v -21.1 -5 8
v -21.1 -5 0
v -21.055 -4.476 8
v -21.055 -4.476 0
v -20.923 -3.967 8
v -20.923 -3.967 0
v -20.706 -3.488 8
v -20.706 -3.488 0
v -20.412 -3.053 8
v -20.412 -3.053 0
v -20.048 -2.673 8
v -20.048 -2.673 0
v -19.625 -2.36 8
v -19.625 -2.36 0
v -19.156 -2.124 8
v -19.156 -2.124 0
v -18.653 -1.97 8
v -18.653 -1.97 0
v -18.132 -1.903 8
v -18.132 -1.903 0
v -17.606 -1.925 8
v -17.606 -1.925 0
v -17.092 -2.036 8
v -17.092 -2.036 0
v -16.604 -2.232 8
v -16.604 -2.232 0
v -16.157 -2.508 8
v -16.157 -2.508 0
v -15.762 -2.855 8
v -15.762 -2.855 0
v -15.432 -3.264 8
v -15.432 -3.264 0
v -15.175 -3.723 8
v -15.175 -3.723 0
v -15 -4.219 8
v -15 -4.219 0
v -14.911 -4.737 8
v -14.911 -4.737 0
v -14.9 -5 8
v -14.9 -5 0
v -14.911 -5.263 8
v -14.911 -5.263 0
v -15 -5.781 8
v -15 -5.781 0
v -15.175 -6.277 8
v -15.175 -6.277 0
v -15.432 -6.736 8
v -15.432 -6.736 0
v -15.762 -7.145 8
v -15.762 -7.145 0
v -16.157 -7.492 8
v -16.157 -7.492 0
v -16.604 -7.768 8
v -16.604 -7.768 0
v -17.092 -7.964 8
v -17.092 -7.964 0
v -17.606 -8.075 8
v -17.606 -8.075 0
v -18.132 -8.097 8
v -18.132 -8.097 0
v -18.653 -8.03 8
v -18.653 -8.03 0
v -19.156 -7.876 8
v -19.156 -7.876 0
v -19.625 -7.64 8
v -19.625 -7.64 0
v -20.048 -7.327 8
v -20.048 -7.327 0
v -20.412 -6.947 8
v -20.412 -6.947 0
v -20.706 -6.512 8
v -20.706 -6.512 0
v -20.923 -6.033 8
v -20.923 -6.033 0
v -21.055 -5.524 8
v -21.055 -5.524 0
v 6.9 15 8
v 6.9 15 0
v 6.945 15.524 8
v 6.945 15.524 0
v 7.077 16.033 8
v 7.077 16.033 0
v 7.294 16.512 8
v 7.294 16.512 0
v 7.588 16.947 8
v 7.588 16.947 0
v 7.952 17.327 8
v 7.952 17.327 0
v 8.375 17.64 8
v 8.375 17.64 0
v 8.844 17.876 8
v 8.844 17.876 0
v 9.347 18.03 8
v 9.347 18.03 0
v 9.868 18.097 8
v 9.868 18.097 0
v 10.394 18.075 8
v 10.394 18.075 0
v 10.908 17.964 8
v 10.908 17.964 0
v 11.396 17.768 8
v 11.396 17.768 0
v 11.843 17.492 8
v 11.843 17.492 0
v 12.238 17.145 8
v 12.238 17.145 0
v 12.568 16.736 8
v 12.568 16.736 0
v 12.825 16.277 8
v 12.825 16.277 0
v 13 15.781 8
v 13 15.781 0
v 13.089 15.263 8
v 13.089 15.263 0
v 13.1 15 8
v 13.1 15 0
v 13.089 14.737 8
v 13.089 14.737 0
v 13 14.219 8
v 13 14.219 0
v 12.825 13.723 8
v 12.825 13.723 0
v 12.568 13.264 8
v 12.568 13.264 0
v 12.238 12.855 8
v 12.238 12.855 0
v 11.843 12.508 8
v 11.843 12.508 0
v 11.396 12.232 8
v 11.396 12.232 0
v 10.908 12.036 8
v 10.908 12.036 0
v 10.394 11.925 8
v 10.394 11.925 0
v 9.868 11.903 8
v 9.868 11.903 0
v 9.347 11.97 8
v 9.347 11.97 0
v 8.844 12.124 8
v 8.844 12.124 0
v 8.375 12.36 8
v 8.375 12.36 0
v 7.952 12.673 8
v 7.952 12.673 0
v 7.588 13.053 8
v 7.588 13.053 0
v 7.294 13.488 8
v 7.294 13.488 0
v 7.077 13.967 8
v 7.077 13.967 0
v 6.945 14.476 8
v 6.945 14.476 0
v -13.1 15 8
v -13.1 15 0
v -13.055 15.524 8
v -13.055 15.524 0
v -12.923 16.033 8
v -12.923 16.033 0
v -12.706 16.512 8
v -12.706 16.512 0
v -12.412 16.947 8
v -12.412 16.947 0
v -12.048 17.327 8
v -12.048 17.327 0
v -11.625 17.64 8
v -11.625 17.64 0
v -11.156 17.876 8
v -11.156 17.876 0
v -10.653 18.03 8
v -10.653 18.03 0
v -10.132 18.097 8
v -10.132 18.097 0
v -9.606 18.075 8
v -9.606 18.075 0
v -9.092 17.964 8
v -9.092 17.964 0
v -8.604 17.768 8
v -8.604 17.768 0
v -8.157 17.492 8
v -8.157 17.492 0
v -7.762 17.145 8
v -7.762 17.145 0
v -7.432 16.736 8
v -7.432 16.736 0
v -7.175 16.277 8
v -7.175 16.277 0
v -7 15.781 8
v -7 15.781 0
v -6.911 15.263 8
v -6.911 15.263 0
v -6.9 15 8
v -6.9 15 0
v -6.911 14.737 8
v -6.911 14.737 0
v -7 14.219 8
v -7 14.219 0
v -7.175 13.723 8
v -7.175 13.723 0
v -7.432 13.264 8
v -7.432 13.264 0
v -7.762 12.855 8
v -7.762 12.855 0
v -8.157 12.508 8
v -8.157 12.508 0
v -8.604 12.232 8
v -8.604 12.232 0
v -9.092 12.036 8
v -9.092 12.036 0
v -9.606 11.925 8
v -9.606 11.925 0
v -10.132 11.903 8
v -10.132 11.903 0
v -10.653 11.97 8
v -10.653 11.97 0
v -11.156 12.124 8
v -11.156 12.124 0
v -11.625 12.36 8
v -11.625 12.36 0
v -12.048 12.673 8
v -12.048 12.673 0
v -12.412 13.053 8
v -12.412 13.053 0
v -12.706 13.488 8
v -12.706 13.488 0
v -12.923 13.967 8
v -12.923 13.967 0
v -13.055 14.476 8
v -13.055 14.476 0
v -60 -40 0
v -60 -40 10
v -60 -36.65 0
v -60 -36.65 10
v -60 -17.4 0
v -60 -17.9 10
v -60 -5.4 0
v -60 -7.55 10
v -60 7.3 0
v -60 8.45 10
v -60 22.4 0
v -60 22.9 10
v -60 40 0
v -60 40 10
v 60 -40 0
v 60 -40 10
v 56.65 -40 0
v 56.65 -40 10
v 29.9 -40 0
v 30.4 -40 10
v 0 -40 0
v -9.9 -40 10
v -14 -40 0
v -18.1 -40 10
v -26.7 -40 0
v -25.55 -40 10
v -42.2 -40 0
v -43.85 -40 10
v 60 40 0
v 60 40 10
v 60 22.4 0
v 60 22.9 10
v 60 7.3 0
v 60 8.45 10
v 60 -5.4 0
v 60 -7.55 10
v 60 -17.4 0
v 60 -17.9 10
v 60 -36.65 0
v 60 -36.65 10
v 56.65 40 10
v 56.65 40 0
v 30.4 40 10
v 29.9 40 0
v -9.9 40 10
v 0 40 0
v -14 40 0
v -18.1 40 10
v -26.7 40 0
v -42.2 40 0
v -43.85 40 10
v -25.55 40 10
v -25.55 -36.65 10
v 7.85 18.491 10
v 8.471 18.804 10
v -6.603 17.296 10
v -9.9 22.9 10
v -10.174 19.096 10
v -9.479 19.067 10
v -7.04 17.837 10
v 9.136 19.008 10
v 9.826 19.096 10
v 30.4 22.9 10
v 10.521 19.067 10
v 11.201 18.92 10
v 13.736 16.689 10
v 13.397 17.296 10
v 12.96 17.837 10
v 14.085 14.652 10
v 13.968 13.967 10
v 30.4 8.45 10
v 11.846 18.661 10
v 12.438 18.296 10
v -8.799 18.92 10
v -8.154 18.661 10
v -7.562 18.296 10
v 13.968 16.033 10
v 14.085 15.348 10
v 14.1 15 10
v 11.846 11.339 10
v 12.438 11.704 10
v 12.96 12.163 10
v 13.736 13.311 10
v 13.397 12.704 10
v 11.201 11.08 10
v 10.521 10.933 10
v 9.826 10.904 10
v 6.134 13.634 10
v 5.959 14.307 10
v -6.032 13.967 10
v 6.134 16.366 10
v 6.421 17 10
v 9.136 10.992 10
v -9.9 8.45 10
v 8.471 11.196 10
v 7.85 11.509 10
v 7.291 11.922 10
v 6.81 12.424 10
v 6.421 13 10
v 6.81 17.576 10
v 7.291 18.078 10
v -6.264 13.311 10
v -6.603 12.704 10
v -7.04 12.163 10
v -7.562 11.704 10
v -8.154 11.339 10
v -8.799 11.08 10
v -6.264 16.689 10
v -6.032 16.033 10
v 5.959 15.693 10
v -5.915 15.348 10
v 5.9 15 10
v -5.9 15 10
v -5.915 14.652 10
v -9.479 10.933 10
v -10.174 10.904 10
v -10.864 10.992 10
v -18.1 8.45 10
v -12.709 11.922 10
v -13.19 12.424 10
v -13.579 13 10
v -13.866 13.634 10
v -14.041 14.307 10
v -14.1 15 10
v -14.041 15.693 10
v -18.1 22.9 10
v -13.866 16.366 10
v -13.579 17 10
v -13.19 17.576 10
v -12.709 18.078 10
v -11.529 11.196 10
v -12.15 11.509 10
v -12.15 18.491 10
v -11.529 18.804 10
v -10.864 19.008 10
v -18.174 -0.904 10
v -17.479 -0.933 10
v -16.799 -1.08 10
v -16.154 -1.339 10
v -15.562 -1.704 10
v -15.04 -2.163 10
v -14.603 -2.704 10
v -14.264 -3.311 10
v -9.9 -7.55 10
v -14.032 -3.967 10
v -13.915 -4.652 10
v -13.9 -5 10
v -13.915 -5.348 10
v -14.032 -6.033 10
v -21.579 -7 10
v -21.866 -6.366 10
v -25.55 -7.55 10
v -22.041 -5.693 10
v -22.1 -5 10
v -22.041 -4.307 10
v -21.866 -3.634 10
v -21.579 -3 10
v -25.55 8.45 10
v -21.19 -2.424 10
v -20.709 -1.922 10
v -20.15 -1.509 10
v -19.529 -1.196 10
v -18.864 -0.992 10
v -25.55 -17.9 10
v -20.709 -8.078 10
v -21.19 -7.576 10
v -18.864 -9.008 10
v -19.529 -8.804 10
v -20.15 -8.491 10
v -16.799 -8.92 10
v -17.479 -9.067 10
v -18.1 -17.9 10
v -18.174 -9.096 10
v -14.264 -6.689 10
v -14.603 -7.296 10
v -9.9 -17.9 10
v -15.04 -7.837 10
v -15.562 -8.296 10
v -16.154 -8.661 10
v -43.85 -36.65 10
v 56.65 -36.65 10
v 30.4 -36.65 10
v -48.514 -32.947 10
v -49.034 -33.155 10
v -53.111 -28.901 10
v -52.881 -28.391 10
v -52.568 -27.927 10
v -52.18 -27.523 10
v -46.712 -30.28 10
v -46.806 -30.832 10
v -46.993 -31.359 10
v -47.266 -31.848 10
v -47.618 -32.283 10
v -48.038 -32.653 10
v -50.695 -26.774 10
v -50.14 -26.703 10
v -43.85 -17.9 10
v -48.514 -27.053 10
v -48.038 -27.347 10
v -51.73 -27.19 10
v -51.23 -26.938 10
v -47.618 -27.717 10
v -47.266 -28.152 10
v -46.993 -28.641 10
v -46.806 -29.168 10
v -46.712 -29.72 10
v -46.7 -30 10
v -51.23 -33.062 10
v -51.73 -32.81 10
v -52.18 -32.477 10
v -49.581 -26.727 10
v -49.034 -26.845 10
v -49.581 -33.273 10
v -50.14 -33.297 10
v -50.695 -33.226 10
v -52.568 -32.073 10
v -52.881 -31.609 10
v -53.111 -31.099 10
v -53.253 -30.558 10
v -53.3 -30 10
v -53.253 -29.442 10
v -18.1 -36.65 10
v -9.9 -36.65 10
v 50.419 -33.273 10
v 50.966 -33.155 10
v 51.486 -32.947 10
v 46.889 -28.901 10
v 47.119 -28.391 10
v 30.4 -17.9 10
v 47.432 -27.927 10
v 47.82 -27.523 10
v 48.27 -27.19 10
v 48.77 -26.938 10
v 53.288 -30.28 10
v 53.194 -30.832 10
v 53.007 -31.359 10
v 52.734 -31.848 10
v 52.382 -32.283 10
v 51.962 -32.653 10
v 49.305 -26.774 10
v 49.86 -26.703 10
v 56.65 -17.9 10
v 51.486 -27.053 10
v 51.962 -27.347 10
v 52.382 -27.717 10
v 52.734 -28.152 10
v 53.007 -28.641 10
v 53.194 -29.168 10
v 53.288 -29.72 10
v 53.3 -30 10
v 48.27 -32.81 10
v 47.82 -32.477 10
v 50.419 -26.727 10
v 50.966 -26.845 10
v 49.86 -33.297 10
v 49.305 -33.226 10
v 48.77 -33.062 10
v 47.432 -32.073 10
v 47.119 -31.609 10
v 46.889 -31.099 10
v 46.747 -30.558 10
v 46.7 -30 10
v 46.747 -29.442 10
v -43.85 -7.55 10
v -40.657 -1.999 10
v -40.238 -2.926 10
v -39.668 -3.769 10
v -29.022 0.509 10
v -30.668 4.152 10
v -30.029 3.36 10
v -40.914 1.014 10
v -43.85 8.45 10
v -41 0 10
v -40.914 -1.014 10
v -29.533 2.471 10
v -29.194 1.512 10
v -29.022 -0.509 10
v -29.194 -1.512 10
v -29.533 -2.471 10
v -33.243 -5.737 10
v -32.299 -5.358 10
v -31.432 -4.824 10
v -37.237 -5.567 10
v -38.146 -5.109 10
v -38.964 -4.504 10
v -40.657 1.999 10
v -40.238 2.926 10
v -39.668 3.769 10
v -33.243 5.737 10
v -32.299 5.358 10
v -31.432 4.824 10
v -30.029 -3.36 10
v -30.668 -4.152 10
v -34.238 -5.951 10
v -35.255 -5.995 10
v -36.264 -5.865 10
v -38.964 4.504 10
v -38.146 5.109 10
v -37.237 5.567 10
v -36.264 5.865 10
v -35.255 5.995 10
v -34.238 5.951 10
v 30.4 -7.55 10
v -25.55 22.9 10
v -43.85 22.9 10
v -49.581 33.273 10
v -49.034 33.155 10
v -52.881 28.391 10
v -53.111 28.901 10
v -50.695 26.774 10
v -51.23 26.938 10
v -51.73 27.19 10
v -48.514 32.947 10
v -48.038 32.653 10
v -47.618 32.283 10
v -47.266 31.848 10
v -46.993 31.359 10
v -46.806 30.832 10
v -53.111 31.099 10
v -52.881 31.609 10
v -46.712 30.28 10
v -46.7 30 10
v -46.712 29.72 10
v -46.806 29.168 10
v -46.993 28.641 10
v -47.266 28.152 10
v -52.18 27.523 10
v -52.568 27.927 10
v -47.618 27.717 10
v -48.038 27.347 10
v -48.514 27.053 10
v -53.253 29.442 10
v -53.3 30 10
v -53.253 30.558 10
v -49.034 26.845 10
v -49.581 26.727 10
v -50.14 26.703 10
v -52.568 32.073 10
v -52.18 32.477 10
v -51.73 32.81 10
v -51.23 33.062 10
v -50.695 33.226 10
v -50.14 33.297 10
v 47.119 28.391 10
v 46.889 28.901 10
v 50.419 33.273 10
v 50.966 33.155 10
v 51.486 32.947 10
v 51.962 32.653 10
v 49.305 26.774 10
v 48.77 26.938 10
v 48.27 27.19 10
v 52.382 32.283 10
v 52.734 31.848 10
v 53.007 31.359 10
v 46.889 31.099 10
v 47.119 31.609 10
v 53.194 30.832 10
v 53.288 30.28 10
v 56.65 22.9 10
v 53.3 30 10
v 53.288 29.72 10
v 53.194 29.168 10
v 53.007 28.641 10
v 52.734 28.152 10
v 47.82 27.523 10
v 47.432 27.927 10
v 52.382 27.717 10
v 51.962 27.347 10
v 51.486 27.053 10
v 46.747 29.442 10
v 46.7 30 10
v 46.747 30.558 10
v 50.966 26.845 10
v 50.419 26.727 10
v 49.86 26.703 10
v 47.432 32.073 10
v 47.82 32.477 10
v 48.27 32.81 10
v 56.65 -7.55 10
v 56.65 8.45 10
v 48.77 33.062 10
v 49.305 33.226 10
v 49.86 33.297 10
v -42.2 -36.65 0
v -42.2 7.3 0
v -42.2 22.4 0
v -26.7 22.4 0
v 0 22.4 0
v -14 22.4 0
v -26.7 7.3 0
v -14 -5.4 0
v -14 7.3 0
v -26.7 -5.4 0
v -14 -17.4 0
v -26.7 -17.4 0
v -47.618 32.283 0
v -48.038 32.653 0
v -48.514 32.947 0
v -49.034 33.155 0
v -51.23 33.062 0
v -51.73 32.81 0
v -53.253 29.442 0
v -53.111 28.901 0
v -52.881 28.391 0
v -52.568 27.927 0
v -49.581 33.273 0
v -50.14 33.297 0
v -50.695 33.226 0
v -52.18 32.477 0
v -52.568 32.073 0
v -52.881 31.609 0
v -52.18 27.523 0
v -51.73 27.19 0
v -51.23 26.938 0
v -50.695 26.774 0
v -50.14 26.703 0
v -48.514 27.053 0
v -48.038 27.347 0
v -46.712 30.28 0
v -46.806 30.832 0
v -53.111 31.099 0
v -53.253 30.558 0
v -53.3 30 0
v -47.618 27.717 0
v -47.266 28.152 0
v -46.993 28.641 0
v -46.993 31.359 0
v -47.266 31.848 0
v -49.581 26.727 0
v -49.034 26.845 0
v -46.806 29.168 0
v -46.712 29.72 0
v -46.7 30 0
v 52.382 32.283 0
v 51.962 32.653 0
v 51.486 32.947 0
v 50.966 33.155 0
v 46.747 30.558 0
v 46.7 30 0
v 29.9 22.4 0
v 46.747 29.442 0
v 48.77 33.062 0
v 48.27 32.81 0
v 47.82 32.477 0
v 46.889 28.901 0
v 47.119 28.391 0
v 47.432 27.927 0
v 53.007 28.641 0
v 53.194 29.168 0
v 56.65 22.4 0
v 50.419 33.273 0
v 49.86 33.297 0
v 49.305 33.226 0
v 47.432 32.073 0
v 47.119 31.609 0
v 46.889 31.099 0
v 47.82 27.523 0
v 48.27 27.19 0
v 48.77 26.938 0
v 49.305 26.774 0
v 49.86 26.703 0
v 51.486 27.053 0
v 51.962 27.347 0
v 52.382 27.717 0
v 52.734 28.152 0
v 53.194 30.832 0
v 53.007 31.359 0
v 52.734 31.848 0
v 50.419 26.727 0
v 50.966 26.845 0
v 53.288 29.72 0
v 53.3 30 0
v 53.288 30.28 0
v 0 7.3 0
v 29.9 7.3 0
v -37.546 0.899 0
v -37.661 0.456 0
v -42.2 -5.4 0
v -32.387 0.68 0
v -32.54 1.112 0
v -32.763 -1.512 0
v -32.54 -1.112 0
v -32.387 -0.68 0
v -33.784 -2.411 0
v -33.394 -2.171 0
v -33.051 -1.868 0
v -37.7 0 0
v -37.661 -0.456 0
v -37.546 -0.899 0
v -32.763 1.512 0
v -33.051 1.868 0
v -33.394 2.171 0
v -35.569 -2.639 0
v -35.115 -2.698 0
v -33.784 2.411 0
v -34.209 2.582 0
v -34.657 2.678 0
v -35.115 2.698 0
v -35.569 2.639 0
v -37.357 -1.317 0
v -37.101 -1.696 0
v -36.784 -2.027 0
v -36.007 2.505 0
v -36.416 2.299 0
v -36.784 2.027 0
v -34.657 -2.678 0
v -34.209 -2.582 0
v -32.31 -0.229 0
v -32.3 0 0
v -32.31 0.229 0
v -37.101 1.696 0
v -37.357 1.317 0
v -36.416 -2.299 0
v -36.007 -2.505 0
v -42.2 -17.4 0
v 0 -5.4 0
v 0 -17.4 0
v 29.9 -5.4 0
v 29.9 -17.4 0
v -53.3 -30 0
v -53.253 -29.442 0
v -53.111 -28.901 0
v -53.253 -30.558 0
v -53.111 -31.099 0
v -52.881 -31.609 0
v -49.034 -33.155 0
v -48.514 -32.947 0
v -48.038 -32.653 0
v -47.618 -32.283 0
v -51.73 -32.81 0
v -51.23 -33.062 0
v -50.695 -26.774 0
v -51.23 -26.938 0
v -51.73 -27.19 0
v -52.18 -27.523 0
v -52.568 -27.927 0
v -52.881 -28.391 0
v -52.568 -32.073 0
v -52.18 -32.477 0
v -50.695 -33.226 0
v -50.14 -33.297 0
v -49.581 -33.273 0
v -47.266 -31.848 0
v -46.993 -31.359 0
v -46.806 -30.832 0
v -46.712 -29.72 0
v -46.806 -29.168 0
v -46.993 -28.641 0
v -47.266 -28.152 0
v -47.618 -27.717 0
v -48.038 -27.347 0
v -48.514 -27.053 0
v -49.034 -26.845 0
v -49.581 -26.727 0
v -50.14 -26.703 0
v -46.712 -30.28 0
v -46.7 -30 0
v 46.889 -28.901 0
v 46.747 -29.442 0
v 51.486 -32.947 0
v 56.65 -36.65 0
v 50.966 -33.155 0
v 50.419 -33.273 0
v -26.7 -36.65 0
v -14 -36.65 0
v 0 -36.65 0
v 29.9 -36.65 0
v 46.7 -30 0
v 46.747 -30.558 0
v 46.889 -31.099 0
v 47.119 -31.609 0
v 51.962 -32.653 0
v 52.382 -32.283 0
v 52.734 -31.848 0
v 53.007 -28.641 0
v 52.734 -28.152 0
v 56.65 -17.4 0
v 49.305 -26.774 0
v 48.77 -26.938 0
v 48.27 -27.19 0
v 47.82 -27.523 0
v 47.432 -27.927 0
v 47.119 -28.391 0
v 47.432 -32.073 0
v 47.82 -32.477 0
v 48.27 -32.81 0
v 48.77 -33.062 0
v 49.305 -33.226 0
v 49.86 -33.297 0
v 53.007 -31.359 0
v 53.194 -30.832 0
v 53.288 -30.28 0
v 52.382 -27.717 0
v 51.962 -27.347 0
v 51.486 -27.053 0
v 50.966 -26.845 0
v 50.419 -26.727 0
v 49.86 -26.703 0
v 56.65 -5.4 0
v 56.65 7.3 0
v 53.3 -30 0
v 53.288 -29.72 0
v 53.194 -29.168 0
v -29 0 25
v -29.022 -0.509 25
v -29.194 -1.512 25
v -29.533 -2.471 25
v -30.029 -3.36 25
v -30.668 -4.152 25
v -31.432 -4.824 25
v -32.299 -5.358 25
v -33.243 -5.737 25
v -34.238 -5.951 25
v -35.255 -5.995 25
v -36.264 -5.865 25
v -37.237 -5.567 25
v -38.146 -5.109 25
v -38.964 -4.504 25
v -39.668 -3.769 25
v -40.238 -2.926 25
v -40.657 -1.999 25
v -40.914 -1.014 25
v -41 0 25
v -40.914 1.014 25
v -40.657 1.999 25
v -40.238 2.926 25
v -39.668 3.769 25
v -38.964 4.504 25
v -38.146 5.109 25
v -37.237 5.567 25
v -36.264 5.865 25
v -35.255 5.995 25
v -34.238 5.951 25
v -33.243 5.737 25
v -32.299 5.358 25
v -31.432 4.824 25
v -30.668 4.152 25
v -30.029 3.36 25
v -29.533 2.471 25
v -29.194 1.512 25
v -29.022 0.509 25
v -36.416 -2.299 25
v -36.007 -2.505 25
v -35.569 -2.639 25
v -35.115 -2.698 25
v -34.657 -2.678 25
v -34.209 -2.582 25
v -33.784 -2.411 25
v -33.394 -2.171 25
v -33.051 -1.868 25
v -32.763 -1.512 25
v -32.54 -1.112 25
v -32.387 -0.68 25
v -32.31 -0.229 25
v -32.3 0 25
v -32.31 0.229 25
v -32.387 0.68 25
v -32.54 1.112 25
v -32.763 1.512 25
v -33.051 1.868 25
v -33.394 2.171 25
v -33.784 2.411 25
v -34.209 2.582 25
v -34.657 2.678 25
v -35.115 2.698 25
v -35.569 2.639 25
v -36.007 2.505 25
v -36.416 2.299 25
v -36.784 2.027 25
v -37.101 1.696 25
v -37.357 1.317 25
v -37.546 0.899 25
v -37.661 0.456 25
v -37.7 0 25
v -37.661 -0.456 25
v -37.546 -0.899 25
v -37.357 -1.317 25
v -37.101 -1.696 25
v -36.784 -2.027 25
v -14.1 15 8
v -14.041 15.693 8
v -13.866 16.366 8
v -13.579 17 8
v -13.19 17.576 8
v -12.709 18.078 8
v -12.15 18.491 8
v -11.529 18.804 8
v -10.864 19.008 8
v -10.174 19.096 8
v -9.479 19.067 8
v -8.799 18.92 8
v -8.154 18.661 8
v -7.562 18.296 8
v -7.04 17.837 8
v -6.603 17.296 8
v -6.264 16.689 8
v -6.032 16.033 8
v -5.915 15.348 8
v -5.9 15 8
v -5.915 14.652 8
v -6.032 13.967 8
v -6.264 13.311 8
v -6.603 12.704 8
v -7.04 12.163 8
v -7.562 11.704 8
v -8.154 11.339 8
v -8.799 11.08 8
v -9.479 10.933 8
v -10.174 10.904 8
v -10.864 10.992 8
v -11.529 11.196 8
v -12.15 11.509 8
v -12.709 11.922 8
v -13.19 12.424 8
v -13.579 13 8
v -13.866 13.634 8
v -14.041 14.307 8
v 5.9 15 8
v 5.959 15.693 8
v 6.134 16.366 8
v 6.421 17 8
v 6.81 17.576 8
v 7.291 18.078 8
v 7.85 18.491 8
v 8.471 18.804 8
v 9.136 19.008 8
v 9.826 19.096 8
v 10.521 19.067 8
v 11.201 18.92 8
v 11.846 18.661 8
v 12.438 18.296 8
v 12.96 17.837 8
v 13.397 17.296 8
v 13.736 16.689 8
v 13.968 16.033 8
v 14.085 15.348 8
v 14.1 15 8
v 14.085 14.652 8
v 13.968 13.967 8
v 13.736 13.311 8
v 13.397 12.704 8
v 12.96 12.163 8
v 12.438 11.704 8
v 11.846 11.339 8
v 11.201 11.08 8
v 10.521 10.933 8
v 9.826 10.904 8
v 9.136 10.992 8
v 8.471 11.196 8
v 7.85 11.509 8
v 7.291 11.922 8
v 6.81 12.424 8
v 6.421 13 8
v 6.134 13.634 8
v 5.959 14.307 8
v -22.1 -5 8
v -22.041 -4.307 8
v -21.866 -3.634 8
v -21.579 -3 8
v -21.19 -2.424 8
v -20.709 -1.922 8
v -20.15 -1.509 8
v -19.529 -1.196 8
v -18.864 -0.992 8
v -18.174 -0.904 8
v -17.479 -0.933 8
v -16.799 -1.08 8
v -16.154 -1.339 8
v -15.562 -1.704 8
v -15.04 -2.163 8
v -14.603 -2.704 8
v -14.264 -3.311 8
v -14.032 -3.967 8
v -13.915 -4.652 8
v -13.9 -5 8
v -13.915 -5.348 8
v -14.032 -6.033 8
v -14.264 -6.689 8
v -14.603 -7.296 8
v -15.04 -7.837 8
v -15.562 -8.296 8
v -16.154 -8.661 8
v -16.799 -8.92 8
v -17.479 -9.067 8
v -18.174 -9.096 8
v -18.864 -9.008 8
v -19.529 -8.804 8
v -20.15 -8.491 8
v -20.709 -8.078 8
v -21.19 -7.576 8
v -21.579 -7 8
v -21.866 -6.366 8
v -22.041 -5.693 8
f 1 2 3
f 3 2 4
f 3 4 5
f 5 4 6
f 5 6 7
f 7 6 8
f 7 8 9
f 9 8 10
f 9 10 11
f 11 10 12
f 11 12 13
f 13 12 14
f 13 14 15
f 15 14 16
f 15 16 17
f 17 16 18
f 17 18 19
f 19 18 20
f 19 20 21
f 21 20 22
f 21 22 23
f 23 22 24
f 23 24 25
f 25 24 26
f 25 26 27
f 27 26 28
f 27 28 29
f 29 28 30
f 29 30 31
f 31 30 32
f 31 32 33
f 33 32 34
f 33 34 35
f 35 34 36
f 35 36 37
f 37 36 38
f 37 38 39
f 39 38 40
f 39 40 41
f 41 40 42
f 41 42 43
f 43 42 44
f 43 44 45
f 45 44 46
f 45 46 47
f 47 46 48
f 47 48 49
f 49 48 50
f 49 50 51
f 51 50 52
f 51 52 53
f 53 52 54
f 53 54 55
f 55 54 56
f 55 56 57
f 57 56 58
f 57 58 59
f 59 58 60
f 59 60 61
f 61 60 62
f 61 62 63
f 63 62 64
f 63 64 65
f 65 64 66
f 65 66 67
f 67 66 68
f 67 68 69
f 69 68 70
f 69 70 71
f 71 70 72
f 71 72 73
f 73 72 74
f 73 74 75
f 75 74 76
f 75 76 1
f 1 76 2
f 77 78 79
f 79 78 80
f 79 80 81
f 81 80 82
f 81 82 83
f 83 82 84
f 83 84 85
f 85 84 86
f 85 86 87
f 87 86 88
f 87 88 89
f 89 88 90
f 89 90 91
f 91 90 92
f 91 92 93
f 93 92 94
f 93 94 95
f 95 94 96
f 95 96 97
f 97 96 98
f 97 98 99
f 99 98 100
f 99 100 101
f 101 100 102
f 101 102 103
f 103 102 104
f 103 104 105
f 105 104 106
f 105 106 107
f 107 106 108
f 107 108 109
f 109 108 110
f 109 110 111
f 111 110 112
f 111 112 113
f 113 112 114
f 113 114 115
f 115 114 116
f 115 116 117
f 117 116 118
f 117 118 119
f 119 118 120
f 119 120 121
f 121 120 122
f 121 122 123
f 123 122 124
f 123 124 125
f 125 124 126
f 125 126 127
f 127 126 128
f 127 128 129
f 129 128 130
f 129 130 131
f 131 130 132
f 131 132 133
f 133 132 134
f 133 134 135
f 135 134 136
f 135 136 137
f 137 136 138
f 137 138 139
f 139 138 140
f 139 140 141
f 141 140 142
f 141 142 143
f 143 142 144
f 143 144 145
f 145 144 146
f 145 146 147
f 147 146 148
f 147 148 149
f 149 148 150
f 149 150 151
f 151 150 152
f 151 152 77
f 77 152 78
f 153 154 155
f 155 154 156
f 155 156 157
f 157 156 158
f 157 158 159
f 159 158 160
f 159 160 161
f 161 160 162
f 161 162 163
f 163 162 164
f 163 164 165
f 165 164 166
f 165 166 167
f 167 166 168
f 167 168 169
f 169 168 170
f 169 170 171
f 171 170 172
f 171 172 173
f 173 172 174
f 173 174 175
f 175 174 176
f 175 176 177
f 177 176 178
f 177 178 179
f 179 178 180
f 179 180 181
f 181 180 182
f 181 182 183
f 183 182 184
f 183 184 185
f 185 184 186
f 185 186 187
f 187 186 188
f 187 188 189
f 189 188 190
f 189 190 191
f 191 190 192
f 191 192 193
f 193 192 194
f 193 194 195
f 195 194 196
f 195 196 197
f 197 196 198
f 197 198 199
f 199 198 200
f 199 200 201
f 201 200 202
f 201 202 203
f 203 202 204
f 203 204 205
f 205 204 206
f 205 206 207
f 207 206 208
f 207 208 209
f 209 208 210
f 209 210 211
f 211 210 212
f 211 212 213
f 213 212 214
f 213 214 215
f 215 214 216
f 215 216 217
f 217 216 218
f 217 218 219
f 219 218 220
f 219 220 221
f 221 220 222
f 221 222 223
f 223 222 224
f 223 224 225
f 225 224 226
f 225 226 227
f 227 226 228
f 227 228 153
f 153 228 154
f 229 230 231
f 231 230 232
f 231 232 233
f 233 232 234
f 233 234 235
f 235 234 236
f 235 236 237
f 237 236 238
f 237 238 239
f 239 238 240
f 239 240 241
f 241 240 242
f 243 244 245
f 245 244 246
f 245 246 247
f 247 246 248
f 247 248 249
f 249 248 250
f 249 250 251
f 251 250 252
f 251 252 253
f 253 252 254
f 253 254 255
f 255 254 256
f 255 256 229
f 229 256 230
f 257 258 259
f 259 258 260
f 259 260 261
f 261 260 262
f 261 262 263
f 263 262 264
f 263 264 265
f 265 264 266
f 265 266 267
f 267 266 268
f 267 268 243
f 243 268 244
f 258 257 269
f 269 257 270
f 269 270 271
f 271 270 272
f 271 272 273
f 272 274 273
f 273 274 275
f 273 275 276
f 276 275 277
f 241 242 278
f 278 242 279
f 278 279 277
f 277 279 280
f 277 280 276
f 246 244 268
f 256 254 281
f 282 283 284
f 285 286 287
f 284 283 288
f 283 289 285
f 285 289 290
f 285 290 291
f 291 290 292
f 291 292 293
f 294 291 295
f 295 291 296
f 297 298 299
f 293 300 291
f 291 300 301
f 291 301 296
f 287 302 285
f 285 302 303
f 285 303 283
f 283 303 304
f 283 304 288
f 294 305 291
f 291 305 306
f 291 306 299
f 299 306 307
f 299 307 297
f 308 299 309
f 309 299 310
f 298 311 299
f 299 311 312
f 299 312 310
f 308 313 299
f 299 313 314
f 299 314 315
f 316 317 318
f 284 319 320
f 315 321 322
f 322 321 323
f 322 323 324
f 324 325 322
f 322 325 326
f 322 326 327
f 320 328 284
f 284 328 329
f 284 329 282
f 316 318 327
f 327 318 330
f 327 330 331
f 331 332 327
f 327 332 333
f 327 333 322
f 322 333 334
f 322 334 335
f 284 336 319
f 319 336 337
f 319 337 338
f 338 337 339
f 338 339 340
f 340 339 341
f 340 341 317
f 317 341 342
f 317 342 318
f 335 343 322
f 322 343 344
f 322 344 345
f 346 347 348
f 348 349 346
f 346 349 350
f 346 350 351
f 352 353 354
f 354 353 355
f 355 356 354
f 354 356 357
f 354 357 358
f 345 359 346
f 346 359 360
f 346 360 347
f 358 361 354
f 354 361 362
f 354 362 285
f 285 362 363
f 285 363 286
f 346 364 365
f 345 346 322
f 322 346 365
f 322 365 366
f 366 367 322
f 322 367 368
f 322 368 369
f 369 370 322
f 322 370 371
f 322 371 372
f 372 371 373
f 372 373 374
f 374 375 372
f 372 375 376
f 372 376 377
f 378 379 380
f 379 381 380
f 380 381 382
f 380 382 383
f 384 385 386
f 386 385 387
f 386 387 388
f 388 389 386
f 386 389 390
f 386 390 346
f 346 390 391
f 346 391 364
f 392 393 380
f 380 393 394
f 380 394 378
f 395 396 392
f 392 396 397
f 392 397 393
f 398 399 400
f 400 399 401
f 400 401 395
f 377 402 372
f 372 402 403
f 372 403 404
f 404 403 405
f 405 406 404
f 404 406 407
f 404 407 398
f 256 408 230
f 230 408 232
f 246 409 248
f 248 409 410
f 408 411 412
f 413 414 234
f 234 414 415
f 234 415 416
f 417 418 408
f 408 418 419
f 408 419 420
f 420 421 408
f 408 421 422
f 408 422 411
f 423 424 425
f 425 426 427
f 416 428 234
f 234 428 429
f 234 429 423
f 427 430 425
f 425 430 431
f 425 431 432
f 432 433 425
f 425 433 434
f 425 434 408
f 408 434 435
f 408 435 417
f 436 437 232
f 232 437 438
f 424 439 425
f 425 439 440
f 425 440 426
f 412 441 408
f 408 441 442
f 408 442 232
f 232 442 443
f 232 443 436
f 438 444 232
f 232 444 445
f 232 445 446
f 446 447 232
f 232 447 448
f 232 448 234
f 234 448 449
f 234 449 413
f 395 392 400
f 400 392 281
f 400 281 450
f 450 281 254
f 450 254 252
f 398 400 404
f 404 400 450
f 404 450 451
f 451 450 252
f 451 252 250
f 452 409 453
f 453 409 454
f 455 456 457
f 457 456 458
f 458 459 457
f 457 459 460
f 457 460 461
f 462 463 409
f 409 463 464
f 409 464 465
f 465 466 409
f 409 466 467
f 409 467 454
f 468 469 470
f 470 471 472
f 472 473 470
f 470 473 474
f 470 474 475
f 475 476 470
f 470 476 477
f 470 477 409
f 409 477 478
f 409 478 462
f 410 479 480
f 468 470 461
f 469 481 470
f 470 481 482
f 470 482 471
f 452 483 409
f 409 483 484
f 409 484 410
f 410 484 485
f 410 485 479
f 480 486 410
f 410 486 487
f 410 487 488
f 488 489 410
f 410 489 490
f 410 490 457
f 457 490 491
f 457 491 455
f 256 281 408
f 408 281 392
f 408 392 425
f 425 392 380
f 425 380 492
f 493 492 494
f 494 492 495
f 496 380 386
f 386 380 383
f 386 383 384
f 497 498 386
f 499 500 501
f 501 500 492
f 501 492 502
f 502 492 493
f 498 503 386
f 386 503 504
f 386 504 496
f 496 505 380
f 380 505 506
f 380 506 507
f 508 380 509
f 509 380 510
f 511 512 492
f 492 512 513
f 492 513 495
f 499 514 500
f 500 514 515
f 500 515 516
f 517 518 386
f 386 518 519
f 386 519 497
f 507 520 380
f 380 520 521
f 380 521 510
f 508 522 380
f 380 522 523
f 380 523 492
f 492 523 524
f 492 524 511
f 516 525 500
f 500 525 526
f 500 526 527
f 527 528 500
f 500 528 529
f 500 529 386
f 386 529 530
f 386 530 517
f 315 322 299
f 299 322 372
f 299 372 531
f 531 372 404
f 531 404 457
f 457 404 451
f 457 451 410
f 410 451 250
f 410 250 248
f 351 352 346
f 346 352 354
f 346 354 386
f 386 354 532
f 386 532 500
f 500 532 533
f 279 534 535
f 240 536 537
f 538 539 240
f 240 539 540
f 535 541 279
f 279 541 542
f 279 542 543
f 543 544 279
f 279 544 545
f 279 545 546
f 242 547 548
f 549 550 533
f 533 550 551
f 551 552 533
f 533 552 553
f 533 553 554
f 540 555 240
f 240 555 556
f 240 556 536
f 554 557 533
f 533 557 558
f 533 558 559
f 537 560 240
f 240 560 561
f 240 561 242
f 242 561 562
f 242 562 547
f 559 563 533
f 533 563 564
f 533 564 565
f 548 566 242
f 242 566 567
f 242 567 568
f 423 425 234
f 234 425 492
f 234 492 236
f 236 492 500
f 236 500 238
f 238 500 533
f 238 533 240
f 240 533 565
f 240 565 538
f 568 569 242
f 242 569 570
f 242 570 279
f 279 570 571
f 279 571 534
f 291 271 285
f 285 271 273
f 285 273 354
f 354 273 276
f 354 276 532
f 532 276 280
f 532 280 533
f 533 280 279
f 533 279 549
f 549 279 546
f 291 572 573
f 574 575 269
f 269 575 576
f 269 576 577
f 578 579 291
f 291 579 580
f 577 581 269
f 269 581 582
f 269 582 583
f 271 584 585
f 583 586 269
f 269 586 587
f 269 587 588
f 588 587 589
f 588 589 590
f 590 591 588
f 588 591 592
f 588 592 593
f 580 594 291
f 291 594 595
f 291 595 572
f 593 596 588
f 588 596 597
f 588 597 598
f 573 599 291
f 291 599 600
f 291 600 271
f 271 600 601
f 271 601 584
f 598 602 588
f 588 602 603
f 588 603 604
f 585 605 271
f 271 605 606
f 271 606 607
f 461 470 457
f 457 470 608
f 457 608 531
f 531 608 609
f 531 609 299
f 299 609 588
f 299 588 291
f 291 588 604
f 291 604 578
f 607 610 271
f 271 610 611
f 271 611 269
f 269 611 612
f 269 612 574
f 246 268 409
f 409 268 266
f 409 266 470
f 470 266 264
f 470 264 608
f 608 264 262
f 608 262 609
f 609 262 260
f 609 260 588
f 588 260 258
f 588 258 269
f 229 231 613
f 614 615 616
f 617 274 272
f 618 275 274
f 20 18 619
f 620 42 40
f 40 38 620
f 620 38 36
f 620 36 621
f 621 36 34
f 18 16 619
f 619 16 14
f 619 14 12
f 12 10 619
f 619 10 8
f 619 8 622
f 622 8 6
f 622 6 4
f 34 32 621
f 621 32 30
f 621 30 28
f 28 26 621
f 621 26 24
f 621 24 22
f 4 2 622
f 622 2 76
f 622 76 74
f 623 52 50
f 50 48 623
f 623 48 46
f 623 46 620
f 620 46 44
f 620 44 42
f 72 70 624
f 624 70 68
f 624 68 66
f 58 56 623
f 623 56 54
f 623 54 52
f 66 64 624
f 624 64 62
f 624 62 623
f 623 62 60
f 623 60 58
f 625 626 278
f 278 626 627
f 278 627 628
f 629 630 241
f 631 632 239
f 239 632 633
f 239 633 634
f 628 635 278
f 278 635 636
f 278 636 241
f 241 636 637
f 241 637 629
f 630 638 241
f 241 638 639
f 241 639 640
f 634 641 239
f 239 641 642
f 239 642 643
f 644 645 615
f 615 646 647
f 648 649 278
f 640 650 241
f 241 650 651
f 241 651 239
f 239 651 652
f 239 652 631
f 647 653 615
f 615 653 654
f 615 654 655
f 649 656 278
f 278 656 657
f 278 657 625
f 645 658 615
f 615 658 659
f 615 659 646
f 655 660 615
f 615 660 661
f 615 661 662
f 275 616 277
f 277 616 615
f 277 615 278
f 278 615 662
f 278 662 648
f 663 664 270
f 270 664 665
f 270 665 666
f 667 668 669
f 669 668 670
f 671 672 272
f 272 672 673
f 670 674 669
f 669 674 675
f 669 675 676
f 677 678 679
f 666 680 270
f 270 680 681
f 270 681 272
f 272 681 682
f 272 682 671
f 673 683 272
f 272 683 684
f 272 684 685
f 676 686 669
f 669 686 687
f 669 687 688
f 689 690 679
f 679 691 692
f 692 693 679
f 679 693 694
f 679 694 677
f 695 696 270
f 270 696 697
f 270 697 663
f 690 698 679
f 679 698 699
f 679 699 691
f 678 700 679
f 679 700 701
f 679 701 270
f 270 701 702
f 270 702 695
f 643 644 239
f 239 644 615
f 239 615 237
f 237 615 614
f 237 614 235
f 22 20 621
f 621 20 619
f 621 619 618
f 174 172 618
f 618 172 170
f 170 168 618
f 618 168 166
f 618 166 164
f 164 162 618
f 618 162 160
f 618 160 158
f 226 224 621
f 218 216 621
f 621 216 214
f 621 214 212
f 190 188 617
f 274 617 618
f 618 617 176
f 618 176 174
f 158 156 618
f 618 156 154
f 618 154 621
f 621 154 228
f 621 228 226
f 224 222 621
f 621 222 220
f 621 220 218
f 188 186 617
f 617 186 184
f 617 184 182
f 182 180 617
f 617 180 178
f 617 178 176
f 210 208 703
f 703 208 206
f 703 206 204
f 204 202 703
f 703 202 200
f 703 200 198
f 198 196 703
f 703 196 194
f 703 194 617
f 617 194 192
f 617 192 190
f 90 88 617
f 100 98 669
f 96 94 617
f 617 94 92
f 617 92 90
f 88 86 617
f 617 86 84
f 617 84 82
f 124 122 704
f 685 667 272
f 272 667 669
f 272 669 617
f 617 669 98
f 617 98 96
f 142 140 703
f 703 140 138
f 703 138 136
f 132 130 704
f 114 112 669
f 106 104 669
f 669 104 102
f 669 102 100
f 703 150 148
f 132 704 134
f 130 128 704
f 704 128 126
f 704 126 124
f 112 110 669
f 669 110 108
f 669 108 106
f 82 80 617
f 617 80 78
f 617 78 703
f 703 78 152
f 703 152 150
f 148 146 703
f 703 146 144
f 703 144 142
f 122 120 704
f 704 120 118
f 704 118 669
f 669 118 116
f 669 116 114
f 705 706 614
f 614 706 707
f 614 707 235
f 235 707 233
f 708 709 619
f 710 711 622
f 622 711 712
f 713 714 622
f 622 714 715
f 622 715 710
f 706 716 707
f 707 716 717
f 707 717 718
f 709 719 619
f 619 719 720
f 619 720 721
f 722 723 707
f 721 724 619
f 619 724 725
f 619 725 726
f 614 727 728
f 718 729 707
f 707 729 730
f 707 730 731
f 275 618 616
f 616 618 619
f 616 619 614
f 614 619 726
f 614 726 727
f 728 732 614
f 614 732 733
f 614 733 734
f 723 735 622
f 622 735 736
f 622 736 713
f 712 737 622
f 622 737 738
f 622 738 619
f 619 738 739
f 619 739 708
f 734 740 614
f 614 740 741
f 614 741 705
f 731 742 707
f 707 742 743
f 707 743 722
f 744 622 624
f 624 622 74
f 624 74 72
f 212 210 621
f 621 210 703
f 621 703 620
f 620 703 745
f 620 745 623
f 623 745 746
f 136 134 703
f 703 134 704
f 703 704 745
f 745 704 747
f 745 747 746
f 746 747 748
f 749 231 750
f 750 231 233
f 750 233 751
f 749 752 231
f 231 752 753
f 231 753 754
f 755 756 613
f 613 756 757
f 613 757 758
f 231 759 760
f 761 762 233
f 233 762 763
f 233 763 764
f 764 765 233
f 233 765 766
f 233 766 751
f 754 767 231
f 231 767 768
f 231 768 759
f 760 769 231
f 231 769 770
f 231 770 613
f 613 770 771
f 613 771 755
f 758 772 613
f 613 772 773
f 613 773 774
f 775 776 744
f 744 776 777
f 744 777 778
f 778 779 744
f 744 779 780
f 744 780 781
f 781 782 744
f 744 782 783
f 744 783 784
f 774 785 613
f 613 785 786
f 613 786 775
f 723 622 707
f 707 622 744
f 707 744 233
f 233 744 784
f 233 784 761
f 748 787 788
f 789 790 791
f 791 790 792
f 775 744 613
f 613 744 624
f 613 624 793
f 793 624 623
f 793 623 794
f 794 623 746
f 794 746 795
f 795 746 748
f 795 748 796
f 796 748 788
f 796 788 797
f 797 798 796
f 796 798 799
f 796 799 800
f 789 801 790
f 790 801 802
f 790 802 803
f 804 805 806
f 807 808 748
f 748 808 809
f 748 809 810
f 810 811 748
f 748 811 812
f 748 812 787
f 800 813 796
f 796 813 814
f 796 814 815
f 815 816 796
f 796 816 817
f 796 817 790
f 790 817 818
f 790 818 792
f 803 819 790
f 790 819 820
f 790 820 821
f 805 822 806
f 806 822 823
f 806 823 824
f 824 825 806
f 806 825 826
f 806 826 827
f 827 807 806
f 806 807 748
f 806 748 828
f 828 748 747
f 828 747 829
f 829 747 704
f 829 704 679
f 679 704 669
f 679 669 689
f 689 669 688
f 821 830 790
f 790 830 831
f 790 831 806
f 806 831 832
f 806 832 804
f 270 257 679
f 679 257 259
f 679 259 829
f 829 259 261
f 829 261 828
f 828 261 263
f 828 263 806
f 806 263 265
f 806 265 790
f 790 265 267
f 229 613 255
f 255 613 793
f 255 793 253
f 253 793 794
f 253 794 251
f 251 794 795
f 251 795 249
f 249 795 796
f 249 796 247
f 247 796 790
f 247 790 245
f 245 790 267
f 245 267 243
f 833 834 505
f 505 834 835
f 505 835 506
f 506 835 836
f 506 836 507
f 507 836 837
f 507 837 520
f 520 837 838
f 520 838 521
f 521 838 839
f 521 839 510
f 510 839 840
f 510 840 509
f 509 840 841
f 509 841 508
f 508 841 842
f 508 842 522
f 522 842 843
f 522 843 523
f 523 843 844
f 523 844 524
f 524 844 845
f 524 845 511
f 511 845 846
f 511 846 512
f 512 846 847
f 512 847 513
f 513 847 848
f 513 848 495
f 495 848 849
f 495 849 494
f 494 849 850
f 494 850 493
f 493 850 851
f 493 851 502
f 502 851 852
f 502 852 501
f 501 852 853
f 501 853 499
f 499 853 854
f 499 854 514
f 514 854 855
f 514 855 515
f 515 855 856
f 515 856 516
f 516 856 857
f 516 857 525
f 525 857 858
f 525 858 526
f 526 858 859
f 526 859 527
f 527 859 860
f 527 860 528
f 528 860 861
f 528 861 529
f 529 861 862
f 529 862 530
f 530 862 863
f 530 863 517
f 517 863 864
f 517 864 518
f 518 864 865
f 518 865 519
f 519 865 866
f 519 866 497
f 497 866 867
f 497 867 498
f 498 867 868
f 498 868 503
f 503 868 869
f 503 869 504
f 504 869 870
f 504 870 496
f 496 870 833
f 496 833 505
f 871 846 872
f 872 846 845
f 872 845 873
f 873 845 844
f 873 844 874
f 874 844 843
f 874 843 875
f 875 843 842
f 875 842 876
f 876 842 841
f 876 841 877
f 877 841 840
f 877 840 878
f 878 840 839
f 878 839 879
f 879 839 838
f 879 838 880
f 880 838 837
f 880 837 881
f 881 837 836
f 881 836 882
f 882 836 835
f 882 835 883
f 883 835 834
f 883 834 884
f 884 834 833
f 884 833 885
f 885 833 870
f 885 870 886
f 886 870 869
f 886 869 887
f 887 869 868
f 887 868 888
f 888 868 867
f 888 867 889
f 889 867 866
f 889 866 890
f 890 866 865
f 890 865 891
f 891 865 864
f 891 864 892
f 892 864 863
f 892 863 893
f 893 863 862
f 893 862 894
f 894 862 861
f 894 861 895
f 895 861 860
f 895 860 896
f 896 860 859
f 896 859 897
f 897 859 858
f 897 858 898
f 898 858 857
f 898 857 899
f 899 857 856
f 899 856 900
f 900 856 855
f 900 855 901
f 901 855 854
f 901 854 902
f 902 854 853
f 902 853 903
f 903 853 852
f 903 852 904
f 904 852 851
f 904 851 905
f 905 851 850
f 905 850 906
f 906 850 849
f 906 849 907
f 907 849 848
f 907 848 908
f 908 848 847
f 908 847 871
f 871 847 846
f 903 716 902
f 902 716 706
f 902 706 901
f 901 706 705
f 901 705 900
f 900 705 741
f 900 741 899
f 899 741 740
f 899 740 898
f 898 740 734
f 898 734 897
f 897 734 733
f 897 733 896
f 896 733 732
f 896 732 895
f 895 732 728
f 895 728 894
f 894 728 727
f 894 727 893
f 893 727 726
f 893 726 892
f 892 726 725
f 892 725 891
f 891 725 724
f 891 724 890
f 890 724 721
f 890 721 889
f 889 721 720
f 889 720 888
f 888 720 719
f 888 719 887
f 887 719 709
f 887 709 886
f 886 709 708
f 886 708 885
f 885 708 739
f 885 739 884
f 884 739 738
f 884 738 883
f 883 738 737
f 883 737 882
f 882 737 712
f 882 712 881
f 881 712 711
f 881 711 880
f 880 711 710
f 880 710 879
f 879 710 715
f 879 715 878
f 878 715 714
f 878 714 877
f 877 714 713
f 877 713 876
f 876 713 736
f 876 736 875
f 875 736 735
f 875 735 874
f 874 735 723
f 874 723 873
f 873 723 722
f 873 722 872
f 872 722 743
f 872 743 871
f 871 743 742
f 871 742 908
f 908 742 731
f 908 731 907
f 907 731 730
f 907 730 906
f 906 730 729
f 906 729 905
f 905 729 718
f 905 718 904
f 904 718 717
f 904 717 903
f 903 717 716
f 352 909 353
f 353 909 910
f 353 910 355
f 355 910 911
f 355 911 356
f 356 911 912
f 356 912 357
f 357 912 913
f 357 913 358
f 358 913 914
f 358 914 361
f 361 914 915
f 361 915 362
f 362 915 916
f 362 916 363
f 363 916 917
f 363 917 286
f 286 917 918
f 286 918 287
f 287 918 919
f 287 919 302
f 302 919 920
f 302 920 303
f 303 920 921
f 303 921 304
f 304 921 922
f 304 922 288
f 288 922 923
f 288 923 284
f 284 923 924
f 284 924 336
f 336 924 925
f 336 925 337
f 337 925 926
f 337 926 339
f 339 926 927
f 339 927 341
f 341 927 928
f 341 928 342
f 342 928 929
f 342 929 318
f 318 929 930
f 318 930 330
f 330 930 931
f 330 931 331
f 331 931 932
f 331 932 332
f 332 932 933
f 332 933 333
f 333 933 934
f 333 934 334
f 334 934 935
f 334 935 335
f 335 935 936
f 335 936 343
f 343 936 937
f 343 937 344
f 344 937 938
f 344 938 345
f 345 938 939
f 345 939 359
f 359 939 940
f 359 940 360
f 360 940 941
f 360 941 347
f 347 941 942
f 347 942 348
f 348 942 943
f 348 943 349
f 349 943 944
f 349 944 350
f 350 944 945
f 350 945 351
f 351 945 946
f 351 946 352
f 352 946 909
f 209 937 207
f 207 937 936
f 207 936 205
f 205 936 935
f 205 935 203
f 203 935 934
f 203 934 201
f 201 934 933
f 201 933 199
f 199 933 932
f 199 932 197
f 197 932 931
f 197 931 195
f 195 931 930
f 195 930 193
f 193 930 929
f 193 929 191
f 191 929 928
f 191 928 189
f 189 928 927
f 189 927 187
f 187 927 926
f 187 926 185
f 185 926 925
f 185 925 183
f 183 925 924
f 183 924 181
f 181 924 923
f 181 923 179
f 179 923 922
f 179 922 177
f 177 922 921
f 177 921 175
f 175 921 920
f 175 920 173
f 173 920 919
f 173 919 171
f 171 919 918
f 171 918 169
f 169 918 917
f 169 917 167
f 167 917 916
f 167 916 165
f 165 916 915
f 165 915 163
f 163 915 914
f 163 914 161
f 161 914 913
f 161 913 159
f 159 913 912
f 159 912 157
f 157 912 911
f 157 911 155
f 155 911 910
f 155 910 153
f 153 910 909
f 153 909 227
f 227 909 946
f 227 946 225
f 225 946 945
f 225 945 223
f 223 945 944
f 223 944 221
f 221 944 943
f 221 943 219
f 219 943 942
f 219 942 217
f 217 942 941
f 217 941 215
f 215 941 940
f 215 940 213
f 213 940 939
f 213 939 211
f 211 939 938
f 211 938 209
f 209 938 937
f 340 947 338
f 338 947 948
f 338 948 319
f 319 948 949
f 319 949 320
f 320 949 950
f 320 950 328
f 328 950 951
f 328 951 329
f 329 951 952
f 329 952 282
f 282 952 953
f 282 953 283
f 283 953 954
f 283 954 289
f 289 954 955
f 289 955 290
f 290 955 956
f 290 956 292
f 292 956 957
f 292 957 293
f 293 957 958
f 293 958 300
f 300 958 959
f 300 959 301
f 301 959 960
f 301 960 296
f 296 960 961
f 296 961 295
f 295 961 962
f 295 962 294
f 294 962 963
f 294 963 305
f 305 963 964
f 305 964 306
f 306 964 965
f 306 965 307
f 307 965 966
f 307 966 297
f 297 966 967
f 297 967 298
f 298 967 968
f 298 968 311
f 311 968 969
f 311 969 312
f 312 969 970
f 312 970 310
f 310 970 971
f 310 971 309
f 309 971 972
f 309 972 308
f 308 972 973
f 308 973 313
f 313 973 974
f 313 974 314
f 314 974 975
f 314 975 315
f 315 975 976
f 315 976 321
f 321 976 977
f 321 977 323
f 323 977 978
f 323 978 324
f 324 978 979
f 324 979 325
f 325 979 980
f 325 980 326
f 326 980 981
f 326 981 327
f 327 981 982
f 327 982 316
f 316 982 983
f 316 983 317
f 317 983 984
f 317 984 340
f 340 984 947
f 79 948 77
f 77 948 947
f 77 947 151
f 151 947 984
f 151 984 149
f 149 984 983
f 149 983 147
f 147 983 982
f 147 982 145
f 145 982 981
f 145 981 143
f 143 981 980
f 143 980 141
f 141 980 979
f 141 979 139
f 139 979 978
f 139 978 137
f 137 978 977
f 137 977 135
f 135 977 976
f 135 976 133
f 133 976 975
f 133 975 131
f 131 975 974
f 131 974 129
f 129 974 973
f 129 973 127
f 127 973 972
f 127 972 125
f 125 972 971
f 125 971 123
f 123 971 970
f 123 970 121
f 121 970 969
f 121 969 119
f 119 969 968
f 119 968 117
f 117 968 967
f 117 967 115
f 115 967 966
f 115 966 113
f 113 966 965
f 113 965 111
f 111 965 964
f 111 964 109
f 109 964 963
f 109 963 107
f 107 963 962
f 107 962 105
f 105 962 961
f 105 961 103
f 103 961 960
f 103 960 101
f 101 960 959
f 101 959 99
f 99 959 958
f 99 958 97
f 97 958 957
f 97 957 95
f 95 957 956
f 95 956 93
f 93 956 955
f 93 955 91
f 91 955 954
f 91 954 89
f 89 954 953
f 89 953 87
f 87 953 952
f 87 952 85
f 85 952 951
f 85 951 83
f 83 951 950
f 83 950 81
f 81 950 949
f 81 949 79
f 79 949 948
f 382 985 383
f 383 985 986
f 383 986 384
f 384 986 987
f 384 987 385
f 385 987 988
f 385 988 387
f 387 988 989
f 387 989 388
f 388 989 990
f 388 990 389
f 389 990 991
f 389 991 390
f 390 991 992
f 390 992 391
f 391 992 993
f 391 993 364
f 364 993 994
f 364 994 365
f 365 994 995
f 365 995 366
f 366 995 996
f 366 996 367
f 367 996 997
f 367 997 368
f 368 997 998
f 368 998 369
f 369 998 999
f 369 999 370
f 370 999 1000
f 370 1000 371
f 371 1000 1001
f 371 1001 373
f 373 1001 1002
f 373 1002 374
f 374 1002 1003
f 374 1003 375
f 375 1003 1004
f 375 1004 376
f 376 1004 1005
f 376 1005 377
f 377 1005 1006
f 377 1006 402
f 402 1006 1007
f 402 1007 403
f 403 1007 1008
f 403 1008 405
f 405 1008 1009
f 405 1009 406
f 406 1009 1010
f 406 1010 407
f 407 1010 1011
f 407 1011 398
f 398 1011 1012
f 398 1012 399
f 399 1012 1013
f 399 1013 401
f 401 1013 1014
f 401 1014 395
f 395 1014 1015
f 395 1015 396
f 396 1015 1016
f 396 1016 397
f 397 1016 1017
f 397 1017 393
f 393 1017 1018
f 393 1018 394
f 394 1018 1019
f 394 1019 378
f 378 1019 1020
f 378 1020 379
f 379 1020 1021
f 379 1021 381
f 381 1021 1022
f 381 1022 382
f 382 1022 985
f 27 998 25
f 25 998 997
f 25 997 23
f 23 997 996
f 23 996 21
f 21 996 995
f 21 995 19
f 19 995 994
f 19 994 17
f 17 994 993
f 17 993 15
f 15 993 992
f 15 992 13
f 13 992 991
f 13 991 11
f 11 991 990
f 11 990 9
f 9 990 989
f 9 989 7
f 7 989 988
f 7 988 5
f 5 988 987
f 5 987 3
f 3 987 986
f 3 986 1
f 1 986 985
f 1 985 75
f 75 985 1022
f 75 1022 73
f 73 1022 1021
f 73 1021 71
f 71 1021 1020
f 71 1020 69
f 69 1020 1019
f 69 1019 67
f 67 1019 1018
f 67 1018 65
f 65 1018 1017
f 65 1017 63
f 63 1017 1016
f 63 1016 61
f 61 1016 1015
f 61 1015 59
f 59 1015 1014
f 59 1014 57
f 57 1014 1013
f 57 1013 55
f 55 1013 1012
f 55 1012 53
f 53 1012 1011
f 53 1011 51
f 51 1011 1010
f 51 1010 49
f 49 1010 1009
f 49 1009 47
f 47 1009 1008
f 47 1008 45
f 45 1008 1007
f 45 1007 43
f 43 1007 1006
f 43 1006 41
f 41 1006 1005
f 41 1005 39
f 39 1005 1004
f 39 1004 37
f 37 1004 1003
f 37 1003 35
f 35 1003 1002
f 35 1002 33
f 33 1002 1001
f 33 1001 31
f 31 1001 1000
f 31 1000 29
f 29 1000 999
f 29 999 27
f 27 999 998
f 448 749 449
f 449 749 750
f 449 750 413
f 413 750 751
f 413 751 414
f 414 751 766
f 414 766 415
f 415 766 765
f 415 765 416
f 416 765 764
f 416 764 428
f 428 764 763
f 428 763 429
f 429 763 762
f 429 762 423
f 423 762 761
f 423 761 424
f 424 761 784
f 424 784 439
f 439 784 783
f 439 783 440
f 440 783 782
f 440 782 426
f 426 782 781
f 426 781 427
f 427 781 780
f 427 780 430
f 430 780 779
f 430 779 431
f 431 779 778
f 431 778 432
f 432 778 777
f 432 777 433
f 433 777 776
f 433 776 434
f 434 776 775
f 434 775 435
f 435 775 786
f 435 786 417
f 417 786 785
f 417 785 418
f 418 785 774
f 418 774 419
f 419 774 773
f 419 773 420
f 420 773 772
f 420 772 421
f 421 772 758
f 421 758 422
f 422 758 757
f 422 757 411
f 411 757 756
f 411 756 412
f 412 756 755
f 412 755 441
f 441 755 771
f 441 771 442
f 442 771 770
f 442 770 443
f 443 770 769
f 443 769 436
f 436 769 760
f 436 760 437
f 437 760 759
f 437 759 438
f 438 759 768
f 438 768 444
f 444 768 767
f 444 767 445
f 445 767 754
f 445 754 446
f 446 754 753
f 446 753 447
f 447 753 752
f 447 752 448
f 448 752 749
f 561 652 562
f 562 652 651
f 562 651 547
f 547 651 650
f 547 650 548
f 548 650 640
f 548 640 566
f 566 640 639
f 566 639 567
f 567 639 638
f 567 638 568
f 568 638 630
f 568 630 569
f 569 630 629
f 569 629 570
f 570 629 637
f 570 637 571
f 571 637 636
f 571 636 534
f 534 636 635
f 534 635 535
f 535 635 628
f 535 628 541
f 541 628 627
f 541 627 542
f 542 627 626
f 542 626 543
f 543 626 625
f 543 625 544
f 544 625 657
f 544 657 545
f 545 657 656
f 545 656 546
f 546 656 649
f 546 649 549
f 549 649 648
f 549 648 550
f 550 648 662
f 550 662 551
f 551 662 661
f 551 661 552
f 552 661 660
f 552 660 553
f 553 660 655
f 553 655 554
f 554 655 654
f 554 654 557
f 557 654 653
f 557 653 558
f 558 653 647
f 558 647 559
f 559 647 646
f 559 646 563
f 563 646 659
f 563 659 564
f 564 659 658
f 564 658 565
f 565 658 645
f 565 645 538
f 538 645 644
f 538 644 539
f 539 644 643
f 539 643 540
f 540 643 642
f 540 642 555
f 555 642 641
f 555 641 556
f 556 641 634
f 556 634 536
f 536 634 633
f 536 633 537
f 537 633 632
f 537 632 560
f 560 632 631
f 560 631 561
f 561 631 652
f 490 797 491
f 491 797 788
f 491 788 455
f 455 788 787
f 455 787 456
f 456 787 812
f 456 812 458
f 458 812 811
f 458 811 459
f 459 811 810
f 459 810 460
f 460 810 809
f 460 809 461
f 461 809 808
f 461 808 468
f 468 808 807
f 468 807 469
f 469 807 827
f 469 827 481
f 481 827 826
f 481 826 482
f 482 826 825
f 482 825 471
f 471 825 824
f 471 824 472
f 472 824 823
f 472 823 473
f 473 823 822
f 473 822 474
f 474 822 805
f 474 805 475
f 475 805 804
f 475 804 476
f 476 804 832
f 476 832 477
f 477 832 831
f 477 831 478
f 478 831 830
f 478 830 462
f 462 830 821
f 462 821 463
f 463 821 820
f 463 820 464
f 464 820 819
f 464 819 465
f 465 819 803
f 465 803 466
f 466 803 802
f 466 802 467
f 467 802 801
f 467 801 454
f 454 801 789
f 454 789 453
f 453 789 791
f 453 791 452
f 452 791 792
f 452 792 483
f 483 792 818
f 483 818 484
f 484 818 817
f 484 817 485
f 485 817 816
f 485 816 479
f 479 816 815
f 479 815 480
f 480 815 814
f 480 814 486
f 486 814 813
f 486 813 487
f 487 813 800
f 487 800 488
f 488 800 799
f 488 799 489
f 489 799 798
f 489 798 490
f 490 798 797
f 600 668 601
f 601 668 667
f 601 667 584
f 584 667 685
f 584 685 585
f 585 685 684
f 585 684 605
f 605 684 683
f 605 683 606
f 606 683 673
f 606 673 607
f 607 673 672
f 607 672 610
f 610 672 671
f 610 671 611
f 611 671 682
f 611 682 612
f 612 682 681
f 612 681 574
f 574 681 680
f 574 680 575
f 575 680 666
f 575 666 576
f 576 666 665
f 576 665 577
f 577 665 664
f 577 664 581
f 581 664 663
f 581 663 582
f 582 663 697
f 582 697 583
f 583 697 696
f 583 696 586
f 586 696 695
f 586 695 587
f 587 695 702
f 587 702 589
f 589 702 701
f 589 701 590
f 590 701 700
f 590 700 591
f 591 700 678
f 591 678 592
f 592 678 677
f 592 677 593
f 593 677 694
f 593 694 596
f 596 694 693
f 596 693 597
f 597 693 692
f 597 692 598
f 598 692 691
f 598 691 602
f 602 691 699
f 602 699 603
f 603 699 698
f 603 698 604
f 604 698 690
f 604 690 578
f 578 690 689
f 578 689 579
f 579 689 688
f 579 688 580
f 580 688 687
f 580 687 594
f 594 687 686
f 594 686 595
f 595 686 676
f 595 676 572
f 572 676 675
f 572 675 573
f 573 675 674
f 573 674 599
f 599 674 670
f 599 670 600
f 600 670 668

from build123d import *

# Parameters (mm, degrees)
SKETCH2_W                          = 120
SKETCH2_H                          = 80
BASE_PLATE_DEPTH                   = 10
PIVOT_PEDESTAL_START               = 10
SKETCH3_R                          = 6
PIVOT_PEDESTAL_DEPTH               = 15
SKETCH4_R                          = 2.7
PIVOT_CLEARANCE_DEPTH              = 25
SKETCH5_R                          = 3.1
LOCATOR_CLEARANCE_DEPTH            = 10
SKETCH6_R                          = 3.1
CUT_EXTRUDE3_DEPTH                 = 10
SKETCH7_R                          = 3.1
SIDE_LOCATOR_CLEARANCE_DEPTH       = 10
LOCATOR_SHOULDER_COUNTERBORE_START = 8
SKETCH8_R                          = 4.1
LOCATOR_SHOULDER_COUNTERBORE_DEPTH = 2
CUT_EXTRUDE6_START                 = 8
SKETCH9_R                          = 4.1
CUT_EXTRUDE6_DEPTH                 = 2
SIDE_SHOULDER_COUNTERBORE_START    = 8
SKETCH10_R                         = 4.1
SIDE_SHOULDER_COUNTERBORE_DEPTH    = 2
SKETCH11_R                         = 3.3
BENCH_MOUNT_M6_CLEARANCE_DEPTH     = 10
SKETCH12_R                         = 3.3
CUT_EXTRUDE9_DEPTH                 = 10
SKETCH13_R                         = 3.3
CUT_EXTRUDE10_DEPTH                = 10
SKETCH14_R                         = 3.3
CUT_EXTRUDE11_DEPTH                = 10


with BuildPart() as part:
    # Sketch2 → Base_plate (new body)
    with BuildSketch(Plane.XY):
        Rectangle(SKETCH2_W, SKETCH2_H)
    extrude(amount=BASE_PLATE_DEPTH)

    # Sketch3 → Pivot_pedestal (add)
    with BuildSketch(Plane.XY.offset(PIVOT_PEDESTAL_START)):
        with Locations(Location((-35, 0, 0), (0, 0, 180))):
            Circle(SKETCH3_R)
    extrude(amount=PIVOT_PEDESTAL_DEPTH)

    # Sketch4 → Pivot_clearance (cut)
    with BuildSketch(Plane.XY):
        with Locations((-35, 0)):
            Circle(SKETCH4_R)
    extrude(amount=PIVOT_CLEARANCE_DEPTH, mode=Mode.SUBTRACT)

    # Sketch5 → Locator_clearance (cut)
    with BuildSketch(Plane.XY):
        with Locations((-10, 15)):
            Circle(SKETCH5_R)
    extrude(amount=LOCATOR_CLEARANCE_DEPTH, mode=Mode.SUBTRACT)

    # Sketch6 → Cut-Extrude3 (cut)
    with BuildSketch(Plane.XY):
        with Locations((10, 15)):
            Circle(SKETCH6_R)
    extrude(amount=CUT_EXTRUDE3_DEPTH, mode=Mode.SUBTRACT)

    # Sketch7 → Side_locator_clearance (cut)
    with BuildSketch(Plane.XY):
        with Locations((-18, -5)):
            Circle(SKETCH7_R)
    extrude(amount=SIDE_LOCATOR_CLEARANCE_DEPTH, mode=Mode.SUBTRACT)

    # Sketch8 → Locator_shoulder_counterbore (cut)
    with BuildSketch(Plane.XY.offset(LOCATOR_SHOULDER_COUNTERBORE_START)):
        with Locations((-10, 15)):
            Circle(SKETCH8_R)
    extrude(amount=LOCATOR_SHOULDER_COUNTERBORE_DEPTH, mode=Mode.SUBTRACT)

    # Sketch9 → Cut-Extrude6 (cut)
    with BuildSketch(Plane.XY.offset(CUT_EXTRUDE6_START)):
        with Locations((10, 15)):
            Circle(SKETCH9_R)
    extrude(amount=CUT_EXTRUDE6_DEPTH, mode=Mode.SUBTRACT)

    # Sketch10 → Side_shoulder_counterbore (cut)
    with BuildSketch(Plane.XY.offset(SIDE_SHOULDER_COUNTERBORE_START)):
        with Locations((-18, -5)):
            Circle(SKETCH10_R)
    extrude(amount=SIDE_SHOULDER_COUNTERBORE_DEPTH, mode=Mode.SUBTRACT)

    # Sketch11 → Bench_mount_M6_clearance (cut)
    with BuildSketch(Plane.XY):
        with Locations((-50, -30)):
            Circle(SKETCH11_R)
    extrude(amount=BENCH_MOUNT_M6_CLEARANCE_DEPTH, mode=Mode.SUBTRACT)

    # Sketch12 → Cut-Extrude9 (cut)
    with BuildSketch(Plane.XY):
        with Locations((-50, 30)):
            Circle(SKETCH12_R)
    extrude(amount=CUT_EXTRUDE9_DEPTH, mode=Mode.SUBTRACT)

    # Sketch13 → Cut-Extrude10 (cut)
    with BuildSketch(Plane.XY):
        with Locations((50, -30)):
            Circle(SKETCH13_R)
    extrude(amount=CUT_EXTRUDE10_DEPTH, mode=Mode.SUBTRACT)

    # Sketch14 → Cut-Extrude11 (cut)
    with BuildSketch(Plane.XY):
        with Locations((50, 30)):
            Circle(SKETCH14_R)
    extrude(amount=CUT_EXTRUDE11_DEPTH, mode=Mode.SUBTRACT)


solid = part.part
